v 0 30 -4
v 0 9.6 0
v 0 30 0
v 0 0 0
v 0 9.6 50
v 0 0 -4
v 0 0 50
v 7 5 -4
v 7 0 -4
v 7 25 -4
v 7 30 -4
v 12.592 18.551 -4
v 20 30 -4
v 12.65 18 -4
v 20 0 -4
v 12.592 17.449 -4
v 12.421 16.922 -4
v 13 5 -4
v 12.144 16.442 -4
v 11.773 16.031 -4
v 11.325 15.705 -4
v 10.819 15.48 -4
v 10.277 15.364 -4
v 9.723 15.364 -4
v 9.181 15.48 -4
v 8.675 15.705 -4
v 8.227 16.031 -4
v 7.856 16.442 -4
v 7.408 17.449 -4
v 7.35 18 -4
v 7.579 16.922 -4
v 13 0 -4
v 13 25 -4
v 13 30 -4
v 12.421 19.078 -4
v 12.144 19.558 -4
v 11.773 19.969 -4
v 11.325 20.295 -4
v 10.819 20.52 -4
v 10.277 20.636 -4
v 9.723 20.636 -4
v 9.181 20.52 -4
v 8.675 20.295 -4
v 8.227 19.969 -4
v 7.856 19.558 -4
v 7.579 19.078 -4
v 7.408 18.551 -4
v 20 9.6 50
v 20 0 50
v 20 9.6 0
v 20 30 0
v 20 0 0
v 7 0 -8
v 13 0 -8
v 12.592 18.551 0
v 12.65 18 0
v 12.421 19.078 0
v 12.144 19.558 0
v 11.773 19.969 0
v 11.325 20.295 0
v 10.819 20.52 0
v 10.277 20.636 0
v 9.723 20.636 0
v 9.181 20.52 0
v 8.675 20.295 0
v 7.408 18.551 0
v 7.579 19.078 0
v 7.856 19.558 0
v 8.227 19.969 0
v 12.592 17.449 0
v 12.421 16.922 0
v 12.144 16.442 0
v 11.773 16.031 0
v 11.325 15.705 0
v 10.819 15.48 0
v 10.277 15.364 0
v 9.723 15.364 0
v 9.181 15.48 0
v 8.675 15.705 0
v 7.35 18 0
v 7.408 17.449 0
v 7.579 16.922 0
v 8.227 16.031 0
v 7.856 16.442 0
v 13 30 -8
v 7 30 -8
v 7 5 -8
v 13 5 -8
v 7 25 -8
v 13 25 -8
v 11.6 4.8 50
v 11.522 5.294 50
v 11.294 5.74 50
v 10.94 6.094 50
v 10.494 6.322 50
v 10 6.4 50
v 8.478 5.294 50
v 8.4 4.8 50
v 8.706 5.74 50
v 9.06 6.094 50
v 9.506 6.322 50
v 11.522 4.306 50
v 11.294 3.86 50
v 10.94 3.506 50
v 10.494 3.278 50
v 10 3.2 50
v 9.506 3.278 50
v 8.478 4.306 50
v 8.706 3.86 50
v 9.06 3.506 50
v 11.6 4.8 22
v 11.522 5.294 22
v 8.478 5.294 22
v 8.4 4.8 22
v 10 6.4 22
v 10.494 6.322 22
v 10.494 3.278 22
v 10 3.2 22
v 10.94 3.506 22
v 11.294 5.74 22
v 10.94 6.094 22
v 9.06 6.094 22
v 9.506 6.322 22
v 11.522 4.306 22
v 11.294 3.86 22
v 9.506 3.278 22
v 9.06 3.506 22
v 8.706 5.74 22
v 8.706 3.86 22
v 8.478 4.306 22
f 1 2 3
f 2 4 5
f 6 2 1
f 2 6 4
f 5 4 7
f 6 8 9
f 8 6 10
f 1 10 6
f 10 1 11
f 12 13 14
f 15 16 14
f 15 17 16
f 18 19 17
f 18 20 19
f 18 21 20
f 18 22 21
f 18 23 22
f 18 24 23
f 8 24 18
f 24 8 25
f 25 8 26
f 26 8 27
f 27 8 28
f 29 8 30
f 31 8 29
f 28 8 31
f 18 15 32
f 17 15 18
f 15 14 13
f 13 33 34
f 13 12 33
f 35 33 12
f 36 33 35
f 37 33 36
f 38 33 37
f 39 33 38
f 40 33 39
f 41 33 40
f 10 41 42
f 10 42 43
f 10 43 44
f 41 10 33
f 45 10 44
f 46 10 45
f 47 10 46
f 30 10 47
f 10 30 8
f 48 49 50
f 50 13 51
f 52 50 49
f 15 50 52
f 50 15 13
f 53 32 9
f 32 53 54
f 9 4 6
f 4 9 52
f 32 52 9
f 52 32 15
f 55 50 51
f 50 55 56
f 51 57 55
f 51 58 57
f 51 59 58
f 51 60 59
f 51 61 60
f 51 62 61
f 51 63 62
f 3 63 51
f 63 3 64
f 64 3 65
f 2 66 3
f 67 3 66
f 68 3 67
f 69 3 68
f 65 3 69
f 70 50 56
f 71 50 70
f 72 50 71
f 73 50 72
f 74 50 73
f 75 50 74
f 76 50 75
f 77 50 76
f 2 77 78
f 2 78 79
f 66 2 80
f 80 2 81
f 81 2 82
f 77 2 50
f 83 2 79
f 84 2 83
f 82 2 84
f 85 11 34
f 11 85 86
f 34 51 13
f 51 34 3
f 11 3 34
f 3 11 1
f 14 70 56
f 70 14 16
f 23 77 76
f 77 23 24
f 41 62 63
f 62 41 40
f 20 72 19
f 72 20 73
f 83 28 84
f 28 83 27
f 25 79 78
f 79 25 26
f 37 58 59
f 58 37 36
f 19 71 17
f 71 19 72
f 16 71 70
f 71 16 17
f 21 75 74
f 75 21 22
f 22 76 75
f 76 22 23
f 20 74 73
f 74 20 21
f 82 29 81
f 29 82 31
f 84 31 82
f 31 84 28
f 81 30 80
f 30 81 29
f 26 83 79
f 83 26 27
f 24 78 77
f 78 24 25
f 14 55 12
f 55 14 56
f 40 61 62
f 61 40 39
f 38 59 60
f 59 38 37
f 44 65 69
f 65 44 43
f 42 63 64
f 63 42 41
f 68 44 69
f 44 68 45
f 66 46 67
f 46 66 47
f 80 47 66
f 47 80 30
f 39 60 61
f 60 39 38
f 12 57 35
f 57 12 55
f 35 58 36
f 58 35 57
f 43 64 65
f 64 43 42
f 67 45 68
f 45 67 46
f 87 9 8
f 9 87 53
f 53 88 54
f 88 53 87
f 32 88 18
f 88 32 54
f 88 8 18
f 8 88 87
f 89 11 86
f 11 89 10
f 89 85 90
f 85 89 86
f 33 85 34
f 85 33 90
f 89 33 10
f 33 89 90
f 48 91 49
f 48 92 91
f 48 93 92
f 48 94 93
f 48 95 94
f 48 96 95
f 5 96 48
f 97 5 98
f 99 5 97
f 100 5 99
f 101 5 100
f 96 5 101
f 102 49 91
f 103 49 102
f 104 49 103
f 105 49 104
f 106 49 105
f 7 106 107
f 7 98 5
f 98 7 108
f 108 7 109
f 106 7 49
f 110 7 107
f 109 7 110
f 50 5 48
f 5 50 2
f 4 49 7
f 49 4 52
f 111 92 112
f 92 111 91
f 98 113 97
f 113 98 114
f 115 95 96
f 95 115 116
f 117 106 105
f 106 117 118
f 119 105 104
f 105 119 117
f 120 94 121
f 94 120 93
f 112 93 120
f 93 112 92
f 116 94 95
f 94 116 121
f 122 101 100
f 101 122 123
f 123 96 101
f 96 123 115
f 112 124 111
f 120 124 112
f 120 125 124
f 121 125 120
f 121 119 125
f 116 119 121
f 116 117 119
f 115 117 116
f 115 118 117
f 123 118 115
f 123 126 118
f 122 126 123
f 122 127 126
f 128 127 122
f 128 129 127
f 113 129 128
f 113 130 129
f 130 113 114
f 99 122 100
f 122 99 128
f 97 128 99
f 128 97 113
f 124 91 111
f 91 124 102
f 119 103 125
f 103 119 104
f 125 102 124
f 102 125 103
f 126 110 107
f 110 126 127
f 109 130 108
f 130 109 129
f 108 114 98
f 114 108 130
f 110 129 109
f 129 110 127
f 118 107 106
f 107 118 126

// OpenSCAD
inner=6;
outer=20;
screwhole=5 + 0.3;
height=4;

stock=5;
stockheight=4;

module mount(length=30, holes=1)
{
	difference()
	{
		cube([outer,length,height]);
		
		union()
		{
			for(i=[1:holes])
			{
				translate([outer/2,i*length/(holes+1)])
					cylinder(d=screwhole,h=height,$fn=30);
			}
			
		}
	}
	
	translate([outer/2-inner/2,length-stock,height])
		cube([inner,stock,stockheight]);
	
	translate([outer/2-inner/2,0,height])
		cube([inner,stock,stockheight]);
	
}

l=30;
mount_height=50;
mount_hole=3.2;
screw_depth=28;


union()
{
	translate([0,l,0])
		rotate(180,[1,0,0])
			mount(length=l, holes=1.5);
	difference()
	{
		cube([outer, 3*mount_hole, mount_height]);
		translate([outer/2,1.5*mount_hole,mount_height-screw_depth])
			cylinder(d=mount_hole, h=screw_depth, $fn=20);
	}
}
